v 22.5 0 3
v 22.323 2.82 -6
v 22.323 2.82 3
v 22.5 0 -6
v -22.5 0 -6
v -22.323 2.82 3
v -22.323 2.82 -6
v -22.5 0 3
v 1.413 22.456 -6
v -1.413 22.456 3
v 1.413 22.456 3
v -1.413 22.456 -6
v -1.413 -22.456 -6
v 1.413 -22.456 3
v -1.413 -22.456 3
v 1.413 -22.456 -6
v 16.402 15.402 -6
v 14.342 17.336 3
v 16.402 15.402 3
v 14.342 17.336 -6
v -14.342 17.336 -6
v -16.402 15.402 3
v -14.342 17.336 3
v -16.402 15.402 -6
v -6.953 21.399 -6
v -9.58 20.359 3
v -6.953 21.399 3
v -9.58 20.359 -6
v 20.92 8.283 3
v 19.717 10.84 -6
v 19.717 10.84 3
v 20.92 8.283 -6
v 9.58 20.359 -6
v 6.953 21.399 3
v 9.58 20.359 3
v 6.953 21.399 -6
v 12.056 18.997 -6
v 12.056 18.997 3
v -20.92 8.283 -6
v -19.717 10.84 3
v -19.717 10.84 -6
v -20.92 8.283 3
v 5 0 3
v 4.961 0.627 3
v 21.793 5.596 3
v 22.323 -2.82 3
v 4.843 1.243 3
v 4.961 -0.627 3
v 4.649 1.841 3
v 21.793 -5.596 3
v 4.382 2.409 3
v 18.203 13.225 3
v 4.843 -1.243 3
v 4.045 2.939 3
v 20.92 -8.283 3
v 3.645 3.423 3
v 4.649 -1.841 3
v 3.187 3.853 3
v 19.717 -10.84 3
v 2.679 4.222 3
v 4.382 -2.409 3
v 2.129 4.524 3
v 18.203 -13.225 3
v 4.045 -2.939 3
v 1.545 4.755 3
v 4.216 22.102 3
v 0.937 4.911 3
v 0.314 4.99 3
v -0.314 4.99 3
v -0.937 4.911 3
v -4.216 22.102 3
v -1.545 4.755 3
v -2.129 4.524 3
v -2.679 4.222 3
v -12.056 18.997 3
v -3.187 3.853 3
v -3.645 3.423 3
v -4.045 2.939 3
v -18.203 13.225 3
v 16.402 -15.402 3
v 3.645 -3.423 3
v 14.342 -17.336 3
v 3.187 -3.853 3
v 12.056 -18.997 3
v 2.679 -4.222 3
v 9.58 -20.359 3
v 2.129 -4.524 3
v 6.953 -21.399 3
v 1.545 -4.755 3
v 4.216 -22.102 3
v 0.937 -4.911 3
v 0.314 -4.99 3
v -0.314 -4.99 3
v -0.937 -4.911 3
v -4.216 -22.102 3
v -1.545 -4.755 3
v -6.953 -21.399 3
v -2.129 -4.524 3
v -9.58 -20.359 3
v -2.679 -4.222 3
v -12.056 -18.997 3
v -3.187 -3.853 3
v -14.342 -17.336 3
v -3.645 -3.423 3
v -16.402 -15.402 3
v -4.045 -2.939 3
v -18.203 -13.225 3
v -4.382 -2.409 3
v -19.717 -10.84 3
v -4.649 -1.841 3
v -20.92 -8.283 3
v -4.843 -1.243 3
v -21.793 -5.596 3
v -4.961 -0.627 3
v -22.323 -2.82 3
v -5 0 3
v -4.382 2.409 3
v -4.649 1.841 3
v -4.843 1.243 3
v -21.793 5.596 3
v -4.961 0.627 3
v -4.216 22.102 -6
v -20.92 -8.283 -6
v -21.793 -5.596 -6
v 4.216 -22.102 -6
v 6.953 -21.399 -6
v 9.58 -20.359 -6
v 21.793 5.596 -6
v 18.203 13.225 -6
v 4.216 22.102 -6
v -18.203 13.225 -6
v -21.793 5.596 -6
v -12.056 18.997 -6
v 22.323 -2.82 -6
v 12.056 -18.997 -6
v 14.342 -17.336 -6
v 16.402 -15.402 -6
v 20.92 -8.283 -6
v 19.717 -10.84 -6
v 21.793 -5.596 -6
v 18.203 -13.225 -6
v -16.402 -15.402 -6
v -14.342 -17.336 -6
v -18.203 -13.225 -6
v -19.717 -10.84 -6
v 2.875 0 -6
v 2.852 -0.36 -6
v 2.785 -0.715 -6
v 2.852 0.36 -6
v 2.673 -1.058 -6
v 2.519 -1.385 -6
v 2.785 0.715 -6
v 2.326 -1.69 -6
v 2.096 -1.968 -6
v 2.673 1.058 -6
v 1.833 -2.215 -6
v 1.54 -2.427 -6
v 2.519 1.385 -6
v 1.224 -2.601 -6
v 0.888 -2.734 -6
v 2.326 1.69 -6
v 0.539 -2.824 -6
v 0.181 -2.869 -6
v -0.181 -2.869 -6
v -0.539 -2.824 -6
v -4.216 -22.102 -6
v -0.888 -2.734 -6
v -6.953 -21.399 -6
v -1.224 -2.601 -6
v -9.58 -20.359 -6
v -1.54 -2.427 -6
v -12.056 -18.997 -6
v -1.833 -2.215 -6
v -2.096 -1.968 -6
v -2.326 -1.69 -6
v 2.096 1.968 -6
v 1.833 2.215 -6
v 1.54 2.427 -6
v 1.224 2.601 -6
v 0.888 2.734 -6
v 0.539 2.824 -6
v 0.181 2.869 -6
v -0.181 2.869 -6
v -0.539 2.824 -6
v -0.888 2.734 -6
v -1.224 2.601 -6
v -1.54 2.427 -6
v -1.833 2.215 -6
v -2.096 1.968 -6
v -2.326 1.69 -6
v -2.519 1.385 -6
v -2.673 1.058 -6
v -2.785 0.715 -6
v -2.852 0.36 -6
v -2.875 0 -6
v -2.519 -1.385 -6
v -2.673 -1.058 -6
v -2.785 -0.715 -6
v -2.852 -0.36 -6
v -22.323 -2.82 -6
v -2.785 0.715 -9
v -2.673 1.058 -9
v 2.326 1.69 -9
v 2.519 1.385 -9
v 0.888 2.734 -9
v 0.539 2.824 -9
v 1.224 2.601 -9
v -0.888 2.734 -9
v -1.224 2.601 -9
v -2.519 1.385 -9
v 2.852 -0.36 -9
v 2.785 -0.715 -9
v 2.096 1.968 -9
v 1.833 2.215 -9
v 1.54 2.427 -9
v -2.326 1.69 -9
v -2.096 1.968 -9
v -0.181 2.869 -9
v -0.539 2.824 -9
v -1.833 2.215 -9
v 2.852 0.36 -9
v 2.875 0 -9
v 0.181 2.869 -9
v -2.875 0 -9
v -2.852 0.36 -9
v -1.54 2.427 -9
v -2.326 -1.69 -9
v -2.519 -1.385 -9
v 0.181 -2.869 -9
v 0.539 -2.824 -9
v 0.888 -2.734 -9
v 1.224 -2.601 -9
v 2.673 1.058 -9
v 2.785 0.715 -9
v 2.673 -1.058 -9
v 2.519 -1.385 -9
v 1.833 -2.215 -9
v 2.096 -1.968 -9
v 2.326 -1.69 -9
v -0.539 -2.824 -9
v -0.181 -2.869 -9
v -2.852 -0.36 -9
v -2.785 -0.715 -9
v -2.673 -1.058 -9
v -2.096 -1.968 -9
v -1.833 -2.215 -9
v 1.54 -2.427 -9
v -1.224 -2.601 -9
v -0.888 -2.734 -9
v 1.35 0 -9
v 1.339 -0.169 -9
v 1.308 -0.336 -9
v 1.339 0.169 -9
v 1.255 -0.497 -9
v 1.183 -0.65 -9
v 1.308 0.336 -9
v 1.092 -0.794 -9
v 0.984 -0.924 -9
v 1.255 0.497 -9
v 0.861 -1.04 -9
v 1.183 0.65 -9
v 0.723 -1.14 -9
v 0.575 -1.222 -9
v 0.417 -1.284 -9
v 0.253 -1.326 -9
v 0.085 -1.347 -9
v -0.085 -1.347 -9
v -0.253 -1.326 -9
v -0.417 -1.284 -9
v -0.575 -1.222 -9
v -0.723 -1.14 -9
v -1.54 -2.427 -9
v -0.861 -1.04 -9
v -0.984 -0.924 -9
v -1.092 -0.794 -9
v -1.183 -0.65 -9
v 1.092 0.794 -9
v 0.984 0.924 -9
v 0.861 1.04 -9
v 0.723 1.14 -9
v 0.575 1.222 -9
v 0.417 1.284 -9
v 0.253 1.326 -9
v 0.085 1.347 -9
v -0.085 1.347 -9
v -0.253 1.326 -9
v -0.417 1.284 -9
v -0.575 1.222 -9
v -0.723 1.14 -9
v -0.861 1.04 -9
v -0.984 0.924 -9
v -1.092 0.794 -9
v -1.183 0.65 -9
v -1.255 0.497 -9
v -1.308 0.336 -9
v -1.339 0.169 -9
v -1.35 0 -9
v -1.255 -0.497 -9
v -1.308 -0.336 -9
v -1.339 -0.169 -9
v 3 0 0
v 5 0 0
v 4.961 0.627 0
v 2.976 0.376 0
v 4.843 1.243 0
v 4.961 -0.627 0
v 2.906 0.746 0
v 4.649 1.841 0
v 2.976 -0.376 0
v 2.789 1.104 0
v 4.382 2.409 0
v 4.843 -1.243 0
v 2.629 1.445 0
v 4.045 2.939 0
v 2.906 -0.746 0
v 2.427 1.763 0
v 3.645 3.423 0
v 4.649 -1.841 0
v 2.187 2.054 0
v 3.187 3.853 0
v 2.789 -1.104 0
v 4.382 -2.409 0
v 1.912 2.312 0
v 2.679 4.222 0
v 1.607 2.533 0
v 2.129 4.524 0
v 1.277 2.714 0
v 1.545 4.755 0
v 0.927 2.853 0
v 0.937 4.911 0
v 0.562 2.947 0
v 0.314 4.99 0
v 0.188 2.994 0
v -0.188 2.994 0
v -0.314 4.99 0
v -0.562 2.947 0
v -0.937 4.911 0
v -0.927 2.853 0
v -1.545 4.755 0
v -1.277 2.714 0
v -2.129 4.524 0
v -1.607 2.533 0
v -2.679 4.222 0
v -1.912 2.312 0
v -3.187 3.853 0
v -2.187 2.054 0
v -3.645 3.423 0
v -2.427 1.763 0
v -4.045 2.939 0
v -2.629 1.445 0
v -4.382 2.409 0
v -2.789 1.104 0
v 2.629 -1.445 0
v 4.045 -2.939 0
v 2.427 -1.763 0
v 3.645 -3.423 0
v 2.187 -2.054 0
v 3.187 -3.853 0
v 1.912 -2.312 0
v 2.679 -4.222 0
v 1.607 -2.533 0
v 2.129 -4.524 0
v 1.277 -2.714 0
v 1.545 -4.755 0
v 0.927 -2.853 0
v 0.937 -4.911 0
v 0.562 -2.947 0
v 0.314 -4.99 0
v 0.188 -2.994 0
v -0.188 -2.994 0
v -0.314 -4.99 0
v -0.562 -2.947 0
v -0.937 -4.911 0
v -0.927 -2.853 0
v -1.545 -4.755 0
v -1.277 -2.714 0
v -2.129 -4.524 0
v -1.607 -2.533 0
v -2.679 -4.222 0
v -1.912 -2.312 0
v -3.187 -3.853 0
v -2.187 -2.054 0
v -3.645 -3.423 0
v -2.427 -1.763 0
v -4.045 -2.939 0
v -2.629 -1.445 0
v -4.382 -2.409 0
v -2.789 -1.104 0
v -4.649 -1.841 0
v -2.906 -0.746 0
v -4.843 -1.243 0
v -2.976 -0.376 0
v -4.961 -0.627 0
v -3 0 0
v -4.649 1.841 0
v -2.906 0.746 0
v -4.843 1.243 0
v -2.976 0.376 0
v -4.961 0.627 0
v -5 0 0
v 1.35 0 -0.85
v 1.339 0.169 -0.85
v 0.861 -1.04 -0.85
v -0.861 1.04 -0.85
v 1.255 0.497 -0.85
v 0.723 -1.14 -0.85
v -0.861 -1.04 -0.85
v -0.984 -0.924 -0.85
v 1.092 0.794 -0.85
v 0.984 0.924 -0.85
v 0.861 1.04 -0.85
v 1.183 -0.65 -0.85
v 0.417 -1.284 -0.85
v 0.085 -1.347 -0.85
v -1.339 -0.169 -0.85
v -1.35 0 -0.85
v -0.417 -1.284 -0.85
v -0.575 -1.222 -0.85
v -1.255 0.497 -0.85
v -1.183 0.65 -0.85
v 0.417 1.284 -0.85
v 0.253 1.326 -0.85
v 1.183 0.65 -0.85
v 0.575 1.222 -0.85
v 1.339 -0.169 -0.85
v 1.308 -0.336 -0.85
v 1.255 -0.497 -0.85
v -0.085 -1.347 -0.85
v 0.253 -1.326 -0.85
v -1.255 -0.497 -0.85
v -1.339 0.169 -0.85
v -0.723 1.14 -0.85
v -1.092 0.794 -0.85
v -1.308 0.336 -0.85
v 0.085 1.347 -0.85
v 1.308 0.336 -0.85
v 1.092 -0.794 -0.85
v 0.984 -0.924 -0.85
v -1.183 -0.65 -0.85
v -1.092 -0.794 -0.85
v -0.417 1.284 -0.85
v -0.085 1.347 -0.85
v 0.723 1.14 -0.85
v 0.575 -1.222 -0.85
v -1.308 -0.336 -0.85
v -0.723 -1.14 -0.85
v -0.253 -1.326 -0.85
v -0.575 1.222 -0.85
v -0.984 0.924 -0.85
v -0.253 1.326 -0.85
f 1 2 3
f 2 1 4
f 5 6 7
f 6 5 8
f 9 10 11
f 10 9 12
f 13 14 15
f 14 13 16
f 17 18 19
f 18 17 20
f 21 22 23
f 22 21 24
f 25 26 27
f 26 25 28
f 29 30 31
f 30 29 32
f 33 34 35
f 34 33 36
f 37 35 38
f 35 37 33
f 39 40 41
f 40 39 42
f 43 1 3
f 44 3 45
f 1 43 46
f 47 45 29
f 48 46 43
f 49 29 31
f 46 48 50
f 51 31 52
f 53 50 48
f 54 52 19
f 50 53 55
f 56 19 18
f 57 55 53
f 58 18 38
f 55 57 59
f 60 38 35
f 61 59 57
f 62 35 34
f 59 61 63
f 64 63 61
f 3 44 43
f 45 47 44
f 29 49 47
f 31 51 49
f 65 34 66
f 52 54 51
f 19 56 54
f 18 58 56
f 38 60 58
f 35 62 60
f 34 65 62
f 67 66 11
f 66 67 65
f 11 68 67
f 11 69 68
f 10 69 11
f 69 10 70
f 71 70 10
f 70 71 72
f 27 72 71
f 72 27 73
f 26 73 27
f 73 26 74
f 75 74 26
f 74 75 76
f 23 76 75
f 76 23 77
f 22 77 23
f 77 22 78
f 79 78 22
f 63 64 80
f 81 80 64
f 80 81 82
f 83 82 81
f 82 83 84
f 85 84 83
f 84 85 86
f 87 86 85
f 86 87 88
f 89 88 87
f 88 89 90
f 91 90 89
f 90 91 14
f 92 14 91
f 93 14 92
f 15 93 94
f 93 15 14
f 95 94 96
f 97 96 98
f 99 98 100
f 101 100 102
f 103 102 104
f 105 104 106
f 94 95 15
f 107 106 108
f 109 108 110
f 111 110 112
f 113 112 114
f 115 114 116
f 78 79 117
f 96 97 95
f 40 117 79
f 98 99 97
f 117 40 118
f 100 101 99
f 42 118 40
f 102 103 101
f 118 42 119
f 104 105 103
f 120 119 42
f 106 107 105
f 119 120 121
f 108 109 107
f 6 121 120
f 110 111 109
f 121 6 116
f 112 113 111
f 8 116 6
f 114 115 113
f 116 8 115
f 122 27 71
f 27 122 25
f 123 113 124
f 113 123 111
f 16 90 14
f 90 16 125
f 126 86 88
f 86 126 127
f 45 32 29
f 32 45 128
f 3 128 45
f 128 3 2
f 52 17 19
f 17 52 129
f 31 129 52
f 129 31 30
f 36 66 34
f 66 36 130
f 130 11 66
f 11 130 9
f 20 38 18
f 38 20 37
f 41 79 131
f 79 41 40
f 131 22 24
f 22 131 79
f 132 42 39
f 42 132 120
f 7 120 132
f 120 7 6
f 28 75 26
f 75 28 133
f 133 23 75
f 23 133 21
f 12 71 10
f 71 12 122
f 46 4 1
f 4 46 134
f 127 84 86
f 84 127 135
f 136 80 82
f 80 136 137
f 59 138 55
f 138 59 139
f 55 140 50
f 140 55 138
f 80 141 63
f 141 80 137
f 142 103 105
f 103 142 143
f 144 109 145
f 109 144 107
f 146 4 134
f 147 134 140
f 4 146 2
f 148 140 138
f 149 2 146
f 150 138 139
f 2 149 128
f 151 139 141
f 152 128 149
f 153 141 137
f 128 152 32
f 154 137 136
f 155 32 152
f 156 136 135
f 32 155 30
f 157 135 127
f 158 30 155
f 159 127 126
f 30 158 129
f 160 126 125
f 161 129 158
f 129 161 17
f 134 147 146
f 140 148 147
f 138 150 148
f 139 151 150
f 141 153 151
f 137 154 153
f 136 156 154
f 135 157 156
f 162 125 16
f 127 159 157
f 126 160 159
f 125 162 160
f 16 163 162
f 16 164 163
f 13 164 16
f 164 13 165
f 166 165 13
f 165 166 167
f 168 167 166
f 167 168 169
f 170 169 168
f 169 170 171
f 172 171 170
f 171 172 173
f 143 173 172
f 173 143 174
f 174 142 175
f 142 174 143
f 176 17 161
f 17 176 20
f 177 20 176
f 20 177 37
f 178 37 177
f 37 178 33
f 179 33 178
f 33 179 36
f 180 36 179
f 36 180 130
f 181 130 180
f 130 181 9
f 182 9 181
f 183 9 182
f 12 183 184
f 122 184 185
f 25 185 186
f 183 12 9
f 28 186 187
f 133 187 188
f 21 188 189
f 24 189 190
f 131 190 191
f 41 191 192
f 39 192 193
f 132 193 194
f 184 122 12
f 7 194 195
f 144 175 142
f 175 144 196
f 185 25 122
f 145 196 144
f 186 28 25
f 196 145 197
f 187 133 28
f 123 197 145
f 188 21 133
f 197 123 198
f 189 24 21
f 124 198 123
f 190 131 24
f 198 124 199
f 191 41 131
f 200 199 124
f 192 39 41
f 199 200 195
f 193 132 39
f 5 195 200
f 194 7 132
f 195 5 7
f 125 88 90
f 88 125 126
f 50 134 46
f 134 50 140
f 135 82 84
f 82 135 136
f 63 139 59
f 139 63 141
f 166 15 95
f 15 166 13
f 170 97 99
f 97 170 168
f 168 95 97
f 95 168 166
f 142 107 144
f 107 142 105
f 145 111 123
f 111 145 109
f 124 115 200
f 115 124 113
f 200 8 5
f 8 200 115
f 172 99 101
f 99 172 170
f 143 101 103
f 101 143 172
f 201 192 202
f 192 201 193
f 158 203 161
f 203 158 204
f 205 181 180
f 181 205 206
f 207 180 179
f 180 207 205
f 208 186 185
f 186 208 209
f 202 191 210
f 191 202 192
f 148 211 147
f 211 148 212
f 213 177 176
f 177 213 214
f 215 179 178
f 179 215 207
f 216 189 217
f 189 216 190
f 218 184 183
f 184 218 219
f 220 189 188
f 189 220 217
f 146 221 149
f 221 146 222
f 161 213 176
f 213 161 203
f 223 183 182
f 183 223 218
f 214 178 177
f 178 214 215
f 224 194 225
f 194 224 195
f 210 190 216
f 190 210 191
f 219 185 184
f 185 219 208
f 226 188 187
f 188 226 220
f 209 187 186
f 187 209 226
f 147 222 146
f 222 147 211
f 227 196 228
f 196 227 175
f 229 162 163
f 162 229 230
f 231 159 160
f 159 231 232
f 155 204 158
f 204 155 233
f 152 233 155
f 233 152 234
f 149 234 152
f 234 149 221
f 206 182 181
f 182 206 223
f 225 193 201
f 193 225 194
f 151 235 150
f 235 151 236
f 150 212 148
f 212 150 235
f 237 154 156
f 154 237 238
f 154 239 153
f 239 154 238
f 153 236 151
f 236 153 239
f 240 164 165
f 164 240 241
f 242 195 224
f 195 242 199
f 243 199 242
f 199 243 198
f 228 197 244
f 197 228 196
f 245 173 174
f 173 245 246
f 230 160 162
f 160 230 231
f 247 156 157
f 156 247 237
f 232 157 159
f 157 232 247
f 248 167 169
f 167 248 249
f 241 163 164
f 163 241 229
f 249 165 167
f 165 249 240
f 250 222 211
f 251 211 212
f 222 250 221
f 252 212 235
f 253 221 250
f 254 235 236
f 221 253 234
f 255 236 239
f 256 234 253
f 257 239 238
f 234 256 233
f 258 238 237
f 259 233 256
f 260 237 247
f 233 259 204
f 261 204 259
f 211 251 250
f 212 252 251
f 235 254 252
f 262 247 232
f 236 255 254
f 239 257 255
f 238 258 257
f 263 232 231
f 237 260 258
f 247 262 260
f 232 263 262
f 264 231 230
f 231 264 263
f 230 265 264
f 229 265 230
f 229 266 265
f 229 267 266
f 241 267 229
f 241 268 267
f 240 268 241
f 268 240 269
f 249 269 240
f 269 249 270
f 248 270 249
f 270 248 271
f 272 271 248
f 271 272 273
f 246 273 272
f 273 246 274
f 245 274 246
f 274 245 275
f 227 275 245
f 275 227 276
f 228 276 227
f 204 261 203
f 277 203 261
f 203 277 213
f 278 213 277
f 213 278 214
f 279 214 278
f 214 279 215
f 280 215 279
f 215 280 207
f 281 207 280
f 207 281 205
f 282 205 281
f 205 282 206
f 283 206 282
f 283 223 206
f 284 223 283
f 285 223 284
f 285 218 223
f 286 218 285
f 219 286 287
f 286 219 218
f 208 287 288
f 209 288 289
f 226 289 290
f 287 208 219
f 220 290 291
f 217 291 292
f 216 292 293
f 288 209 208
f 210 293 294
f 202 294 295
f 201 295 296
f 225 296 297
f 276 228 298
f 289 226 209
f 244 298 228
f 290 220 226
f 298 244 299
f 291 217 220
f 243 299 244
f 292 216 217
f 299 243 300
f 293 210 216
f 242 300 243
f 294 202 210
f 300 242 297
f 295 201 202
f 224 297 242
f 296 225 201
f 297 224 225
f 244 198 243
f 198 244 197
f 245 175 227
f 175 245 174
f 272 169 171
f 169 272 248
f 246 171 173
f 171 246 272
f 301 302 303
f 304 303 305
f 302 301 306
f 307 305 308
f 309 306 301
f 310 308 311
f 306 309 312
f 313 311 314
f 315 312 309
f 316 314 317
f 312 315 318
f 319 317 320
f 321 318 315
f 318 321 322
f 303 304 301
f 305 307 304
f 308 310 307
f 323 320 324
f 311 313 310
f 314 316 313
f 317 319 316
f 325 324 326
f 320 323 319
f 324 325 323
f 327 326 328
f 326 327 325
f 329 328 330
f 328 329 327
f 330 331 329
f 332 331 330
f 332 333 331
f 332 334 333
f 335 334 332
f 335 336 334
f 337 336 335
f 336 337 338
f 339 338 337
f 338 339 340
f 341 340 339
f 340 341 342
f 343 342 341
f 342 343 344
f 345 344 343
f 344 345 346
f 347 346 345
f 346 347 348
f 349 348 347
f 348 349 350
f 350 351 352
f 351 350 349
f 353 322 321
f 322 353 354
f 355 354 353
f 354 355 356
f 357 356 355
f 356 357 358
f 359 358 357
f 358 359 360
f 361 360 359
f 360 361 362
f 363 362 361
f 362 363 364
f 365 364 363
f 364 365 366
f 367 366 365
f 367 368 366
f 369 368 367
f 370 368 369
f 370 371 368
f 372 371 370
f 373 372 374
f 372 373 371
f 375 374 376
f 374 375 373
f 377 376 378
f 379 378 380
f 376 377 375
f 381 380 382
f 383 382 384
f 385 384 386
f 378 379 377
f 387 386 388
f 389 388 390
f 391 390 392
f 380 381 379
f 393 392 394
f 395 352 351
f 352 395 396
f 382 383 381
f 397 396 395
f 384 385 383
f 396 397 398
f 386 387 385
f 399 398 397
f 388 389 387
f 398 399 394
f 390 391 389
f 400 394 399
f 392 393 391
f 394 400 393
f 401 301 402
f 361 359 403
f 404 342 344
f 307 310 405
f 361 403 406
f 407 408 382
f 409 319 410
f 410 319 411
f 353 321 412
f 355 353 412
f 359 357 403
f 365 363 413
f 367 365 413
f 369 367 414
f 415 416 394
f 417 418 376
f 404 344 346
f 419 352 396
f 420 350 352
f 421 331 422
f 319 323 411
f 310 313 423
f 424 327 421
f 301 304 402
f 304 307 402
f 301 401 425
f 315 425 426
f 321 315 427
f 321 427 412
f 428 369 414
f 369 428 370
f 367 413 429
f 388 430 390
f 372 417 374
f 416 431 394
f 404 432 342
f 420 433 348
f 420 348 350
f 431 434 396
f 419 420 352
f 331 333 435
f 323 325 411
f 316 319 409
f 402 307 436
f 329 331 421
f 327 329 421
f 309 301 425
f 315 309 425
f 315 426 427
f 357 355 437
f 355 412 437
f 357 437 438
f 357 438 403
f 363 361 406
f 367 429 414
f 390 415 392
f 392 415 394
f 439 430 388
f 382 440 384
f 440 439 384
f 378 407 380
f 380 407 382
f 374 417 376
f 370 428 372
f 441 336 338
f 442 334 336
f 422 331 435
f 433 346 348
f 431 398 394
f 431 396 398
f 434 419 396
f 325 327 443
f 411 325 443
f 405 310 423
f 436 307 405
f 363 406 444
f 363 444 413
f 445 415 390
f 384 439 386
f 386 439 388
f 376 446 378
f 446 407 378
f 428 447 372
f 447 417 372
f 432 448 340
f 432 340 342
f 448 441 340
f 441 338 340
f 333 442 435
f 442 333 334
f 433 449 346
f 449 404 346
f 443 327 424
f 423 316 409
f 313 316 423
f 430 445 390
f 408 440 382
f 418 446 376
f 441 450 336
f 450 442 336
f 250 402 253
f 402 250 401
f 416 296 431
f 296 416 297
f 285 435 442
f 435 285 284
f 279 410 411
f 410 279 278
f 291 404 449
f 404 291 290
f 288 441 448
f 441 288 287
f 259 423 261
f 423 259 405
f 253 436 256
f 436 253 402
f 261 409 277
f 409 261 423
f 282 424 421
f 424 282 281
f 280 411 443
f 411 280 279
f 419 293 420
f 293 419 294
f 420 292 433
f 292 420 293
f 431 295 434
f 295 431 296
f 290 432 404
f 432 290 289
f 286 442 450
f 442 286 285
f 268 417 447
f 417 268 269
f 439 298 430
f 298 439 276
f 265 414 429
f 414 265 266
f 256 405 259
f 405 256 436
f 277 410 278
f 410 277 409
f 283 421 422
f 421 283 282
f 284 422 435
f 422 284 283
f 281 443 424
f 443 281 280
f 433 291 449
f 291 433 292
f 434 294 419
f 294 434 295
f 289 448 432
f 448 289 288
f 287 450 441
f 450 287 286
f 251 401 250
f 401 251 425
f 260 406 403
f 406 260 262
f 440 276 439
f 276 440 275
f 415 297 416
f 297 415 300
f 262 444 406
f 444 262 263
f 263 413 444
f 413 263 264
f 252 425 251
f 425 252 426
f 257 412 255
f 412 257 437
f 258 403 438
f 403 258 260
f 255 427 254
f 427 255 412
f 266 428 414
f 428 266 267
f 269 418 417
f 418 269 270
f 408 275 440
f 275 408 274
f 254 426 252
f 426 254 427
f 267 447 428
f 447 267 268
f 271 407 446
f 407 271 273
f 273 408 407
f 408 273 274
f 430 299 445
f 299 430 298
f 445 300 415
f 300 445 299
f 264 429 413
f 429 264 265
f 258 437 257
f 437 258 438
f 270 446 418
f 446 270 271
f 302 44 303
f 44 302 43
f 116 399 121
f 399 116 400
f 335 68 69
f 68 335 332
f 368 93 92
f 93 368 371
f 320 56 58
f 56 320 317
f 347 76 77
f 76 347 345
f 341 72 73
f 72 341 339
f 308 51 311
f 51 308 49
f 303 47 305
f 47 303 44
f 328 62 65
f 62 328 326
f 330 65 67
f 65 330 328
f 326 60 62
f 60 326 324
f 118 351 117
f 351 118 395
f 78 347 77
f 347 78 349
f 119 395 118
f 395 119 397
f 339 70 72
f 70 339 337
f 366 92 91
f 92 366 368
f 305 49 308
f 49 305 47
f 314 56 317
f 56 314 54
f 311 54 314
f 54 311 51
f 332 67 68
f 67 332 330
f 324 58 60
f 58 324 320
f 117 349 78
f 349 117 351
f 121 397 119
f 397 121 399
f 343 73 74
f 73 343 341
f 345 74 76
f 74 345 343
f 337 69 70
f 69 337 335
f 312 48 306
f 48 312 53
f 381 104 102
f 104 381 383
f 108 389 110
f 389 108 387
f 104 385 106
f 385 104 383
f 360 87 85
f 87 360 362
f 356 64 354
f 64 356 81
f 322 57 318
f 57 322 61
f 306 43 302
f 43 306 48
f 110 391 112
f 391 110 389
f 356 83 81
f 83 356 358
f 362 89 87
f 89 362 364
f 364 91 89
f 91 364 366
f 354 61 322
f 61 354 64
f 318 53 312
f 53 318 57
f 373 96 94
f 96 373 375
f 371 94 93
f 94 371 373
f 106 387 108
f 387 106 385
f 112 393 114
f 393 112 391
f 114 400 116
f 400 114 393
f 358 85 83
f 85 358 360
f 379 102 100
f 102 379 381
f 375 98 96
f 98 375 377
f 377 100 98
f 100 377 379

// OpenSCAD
$fn = 50;

difference() {
	union() {
		translate(v = [0, 0, -6.0]) {
			cylinder(h = 9, r = 22.5);
		}
		#translate(v = [0, 0, -9.0]) {
			cylinder(h = 9, r = 2.875);
		}
	}
	union() {
		translate(v = [0, 0, 0]) {
			rotate(a = [0, 0, 0]) {
				difference() {
					union() {
						translate(v = [0, 0, -9.0]) {
							cylinder(h = 9, r = 1.0);
						}
						translate(v = [0, 0, -0.85]) {
							cylinder(h = 0.85, r1 = 1.35, r2 = 3.0);
						}
						translate(v = [0, 0, -9.0]) {
							cylinder(h = 9, r = 1.35);
						}
						translate(v = [0, 0, -9.0]) {
							cylinder(h = 9, r = 1.0);
						}
					}
					union();
				}
			}
		}
		#cylinder(h = 3, r = 5.0);
	}
}
